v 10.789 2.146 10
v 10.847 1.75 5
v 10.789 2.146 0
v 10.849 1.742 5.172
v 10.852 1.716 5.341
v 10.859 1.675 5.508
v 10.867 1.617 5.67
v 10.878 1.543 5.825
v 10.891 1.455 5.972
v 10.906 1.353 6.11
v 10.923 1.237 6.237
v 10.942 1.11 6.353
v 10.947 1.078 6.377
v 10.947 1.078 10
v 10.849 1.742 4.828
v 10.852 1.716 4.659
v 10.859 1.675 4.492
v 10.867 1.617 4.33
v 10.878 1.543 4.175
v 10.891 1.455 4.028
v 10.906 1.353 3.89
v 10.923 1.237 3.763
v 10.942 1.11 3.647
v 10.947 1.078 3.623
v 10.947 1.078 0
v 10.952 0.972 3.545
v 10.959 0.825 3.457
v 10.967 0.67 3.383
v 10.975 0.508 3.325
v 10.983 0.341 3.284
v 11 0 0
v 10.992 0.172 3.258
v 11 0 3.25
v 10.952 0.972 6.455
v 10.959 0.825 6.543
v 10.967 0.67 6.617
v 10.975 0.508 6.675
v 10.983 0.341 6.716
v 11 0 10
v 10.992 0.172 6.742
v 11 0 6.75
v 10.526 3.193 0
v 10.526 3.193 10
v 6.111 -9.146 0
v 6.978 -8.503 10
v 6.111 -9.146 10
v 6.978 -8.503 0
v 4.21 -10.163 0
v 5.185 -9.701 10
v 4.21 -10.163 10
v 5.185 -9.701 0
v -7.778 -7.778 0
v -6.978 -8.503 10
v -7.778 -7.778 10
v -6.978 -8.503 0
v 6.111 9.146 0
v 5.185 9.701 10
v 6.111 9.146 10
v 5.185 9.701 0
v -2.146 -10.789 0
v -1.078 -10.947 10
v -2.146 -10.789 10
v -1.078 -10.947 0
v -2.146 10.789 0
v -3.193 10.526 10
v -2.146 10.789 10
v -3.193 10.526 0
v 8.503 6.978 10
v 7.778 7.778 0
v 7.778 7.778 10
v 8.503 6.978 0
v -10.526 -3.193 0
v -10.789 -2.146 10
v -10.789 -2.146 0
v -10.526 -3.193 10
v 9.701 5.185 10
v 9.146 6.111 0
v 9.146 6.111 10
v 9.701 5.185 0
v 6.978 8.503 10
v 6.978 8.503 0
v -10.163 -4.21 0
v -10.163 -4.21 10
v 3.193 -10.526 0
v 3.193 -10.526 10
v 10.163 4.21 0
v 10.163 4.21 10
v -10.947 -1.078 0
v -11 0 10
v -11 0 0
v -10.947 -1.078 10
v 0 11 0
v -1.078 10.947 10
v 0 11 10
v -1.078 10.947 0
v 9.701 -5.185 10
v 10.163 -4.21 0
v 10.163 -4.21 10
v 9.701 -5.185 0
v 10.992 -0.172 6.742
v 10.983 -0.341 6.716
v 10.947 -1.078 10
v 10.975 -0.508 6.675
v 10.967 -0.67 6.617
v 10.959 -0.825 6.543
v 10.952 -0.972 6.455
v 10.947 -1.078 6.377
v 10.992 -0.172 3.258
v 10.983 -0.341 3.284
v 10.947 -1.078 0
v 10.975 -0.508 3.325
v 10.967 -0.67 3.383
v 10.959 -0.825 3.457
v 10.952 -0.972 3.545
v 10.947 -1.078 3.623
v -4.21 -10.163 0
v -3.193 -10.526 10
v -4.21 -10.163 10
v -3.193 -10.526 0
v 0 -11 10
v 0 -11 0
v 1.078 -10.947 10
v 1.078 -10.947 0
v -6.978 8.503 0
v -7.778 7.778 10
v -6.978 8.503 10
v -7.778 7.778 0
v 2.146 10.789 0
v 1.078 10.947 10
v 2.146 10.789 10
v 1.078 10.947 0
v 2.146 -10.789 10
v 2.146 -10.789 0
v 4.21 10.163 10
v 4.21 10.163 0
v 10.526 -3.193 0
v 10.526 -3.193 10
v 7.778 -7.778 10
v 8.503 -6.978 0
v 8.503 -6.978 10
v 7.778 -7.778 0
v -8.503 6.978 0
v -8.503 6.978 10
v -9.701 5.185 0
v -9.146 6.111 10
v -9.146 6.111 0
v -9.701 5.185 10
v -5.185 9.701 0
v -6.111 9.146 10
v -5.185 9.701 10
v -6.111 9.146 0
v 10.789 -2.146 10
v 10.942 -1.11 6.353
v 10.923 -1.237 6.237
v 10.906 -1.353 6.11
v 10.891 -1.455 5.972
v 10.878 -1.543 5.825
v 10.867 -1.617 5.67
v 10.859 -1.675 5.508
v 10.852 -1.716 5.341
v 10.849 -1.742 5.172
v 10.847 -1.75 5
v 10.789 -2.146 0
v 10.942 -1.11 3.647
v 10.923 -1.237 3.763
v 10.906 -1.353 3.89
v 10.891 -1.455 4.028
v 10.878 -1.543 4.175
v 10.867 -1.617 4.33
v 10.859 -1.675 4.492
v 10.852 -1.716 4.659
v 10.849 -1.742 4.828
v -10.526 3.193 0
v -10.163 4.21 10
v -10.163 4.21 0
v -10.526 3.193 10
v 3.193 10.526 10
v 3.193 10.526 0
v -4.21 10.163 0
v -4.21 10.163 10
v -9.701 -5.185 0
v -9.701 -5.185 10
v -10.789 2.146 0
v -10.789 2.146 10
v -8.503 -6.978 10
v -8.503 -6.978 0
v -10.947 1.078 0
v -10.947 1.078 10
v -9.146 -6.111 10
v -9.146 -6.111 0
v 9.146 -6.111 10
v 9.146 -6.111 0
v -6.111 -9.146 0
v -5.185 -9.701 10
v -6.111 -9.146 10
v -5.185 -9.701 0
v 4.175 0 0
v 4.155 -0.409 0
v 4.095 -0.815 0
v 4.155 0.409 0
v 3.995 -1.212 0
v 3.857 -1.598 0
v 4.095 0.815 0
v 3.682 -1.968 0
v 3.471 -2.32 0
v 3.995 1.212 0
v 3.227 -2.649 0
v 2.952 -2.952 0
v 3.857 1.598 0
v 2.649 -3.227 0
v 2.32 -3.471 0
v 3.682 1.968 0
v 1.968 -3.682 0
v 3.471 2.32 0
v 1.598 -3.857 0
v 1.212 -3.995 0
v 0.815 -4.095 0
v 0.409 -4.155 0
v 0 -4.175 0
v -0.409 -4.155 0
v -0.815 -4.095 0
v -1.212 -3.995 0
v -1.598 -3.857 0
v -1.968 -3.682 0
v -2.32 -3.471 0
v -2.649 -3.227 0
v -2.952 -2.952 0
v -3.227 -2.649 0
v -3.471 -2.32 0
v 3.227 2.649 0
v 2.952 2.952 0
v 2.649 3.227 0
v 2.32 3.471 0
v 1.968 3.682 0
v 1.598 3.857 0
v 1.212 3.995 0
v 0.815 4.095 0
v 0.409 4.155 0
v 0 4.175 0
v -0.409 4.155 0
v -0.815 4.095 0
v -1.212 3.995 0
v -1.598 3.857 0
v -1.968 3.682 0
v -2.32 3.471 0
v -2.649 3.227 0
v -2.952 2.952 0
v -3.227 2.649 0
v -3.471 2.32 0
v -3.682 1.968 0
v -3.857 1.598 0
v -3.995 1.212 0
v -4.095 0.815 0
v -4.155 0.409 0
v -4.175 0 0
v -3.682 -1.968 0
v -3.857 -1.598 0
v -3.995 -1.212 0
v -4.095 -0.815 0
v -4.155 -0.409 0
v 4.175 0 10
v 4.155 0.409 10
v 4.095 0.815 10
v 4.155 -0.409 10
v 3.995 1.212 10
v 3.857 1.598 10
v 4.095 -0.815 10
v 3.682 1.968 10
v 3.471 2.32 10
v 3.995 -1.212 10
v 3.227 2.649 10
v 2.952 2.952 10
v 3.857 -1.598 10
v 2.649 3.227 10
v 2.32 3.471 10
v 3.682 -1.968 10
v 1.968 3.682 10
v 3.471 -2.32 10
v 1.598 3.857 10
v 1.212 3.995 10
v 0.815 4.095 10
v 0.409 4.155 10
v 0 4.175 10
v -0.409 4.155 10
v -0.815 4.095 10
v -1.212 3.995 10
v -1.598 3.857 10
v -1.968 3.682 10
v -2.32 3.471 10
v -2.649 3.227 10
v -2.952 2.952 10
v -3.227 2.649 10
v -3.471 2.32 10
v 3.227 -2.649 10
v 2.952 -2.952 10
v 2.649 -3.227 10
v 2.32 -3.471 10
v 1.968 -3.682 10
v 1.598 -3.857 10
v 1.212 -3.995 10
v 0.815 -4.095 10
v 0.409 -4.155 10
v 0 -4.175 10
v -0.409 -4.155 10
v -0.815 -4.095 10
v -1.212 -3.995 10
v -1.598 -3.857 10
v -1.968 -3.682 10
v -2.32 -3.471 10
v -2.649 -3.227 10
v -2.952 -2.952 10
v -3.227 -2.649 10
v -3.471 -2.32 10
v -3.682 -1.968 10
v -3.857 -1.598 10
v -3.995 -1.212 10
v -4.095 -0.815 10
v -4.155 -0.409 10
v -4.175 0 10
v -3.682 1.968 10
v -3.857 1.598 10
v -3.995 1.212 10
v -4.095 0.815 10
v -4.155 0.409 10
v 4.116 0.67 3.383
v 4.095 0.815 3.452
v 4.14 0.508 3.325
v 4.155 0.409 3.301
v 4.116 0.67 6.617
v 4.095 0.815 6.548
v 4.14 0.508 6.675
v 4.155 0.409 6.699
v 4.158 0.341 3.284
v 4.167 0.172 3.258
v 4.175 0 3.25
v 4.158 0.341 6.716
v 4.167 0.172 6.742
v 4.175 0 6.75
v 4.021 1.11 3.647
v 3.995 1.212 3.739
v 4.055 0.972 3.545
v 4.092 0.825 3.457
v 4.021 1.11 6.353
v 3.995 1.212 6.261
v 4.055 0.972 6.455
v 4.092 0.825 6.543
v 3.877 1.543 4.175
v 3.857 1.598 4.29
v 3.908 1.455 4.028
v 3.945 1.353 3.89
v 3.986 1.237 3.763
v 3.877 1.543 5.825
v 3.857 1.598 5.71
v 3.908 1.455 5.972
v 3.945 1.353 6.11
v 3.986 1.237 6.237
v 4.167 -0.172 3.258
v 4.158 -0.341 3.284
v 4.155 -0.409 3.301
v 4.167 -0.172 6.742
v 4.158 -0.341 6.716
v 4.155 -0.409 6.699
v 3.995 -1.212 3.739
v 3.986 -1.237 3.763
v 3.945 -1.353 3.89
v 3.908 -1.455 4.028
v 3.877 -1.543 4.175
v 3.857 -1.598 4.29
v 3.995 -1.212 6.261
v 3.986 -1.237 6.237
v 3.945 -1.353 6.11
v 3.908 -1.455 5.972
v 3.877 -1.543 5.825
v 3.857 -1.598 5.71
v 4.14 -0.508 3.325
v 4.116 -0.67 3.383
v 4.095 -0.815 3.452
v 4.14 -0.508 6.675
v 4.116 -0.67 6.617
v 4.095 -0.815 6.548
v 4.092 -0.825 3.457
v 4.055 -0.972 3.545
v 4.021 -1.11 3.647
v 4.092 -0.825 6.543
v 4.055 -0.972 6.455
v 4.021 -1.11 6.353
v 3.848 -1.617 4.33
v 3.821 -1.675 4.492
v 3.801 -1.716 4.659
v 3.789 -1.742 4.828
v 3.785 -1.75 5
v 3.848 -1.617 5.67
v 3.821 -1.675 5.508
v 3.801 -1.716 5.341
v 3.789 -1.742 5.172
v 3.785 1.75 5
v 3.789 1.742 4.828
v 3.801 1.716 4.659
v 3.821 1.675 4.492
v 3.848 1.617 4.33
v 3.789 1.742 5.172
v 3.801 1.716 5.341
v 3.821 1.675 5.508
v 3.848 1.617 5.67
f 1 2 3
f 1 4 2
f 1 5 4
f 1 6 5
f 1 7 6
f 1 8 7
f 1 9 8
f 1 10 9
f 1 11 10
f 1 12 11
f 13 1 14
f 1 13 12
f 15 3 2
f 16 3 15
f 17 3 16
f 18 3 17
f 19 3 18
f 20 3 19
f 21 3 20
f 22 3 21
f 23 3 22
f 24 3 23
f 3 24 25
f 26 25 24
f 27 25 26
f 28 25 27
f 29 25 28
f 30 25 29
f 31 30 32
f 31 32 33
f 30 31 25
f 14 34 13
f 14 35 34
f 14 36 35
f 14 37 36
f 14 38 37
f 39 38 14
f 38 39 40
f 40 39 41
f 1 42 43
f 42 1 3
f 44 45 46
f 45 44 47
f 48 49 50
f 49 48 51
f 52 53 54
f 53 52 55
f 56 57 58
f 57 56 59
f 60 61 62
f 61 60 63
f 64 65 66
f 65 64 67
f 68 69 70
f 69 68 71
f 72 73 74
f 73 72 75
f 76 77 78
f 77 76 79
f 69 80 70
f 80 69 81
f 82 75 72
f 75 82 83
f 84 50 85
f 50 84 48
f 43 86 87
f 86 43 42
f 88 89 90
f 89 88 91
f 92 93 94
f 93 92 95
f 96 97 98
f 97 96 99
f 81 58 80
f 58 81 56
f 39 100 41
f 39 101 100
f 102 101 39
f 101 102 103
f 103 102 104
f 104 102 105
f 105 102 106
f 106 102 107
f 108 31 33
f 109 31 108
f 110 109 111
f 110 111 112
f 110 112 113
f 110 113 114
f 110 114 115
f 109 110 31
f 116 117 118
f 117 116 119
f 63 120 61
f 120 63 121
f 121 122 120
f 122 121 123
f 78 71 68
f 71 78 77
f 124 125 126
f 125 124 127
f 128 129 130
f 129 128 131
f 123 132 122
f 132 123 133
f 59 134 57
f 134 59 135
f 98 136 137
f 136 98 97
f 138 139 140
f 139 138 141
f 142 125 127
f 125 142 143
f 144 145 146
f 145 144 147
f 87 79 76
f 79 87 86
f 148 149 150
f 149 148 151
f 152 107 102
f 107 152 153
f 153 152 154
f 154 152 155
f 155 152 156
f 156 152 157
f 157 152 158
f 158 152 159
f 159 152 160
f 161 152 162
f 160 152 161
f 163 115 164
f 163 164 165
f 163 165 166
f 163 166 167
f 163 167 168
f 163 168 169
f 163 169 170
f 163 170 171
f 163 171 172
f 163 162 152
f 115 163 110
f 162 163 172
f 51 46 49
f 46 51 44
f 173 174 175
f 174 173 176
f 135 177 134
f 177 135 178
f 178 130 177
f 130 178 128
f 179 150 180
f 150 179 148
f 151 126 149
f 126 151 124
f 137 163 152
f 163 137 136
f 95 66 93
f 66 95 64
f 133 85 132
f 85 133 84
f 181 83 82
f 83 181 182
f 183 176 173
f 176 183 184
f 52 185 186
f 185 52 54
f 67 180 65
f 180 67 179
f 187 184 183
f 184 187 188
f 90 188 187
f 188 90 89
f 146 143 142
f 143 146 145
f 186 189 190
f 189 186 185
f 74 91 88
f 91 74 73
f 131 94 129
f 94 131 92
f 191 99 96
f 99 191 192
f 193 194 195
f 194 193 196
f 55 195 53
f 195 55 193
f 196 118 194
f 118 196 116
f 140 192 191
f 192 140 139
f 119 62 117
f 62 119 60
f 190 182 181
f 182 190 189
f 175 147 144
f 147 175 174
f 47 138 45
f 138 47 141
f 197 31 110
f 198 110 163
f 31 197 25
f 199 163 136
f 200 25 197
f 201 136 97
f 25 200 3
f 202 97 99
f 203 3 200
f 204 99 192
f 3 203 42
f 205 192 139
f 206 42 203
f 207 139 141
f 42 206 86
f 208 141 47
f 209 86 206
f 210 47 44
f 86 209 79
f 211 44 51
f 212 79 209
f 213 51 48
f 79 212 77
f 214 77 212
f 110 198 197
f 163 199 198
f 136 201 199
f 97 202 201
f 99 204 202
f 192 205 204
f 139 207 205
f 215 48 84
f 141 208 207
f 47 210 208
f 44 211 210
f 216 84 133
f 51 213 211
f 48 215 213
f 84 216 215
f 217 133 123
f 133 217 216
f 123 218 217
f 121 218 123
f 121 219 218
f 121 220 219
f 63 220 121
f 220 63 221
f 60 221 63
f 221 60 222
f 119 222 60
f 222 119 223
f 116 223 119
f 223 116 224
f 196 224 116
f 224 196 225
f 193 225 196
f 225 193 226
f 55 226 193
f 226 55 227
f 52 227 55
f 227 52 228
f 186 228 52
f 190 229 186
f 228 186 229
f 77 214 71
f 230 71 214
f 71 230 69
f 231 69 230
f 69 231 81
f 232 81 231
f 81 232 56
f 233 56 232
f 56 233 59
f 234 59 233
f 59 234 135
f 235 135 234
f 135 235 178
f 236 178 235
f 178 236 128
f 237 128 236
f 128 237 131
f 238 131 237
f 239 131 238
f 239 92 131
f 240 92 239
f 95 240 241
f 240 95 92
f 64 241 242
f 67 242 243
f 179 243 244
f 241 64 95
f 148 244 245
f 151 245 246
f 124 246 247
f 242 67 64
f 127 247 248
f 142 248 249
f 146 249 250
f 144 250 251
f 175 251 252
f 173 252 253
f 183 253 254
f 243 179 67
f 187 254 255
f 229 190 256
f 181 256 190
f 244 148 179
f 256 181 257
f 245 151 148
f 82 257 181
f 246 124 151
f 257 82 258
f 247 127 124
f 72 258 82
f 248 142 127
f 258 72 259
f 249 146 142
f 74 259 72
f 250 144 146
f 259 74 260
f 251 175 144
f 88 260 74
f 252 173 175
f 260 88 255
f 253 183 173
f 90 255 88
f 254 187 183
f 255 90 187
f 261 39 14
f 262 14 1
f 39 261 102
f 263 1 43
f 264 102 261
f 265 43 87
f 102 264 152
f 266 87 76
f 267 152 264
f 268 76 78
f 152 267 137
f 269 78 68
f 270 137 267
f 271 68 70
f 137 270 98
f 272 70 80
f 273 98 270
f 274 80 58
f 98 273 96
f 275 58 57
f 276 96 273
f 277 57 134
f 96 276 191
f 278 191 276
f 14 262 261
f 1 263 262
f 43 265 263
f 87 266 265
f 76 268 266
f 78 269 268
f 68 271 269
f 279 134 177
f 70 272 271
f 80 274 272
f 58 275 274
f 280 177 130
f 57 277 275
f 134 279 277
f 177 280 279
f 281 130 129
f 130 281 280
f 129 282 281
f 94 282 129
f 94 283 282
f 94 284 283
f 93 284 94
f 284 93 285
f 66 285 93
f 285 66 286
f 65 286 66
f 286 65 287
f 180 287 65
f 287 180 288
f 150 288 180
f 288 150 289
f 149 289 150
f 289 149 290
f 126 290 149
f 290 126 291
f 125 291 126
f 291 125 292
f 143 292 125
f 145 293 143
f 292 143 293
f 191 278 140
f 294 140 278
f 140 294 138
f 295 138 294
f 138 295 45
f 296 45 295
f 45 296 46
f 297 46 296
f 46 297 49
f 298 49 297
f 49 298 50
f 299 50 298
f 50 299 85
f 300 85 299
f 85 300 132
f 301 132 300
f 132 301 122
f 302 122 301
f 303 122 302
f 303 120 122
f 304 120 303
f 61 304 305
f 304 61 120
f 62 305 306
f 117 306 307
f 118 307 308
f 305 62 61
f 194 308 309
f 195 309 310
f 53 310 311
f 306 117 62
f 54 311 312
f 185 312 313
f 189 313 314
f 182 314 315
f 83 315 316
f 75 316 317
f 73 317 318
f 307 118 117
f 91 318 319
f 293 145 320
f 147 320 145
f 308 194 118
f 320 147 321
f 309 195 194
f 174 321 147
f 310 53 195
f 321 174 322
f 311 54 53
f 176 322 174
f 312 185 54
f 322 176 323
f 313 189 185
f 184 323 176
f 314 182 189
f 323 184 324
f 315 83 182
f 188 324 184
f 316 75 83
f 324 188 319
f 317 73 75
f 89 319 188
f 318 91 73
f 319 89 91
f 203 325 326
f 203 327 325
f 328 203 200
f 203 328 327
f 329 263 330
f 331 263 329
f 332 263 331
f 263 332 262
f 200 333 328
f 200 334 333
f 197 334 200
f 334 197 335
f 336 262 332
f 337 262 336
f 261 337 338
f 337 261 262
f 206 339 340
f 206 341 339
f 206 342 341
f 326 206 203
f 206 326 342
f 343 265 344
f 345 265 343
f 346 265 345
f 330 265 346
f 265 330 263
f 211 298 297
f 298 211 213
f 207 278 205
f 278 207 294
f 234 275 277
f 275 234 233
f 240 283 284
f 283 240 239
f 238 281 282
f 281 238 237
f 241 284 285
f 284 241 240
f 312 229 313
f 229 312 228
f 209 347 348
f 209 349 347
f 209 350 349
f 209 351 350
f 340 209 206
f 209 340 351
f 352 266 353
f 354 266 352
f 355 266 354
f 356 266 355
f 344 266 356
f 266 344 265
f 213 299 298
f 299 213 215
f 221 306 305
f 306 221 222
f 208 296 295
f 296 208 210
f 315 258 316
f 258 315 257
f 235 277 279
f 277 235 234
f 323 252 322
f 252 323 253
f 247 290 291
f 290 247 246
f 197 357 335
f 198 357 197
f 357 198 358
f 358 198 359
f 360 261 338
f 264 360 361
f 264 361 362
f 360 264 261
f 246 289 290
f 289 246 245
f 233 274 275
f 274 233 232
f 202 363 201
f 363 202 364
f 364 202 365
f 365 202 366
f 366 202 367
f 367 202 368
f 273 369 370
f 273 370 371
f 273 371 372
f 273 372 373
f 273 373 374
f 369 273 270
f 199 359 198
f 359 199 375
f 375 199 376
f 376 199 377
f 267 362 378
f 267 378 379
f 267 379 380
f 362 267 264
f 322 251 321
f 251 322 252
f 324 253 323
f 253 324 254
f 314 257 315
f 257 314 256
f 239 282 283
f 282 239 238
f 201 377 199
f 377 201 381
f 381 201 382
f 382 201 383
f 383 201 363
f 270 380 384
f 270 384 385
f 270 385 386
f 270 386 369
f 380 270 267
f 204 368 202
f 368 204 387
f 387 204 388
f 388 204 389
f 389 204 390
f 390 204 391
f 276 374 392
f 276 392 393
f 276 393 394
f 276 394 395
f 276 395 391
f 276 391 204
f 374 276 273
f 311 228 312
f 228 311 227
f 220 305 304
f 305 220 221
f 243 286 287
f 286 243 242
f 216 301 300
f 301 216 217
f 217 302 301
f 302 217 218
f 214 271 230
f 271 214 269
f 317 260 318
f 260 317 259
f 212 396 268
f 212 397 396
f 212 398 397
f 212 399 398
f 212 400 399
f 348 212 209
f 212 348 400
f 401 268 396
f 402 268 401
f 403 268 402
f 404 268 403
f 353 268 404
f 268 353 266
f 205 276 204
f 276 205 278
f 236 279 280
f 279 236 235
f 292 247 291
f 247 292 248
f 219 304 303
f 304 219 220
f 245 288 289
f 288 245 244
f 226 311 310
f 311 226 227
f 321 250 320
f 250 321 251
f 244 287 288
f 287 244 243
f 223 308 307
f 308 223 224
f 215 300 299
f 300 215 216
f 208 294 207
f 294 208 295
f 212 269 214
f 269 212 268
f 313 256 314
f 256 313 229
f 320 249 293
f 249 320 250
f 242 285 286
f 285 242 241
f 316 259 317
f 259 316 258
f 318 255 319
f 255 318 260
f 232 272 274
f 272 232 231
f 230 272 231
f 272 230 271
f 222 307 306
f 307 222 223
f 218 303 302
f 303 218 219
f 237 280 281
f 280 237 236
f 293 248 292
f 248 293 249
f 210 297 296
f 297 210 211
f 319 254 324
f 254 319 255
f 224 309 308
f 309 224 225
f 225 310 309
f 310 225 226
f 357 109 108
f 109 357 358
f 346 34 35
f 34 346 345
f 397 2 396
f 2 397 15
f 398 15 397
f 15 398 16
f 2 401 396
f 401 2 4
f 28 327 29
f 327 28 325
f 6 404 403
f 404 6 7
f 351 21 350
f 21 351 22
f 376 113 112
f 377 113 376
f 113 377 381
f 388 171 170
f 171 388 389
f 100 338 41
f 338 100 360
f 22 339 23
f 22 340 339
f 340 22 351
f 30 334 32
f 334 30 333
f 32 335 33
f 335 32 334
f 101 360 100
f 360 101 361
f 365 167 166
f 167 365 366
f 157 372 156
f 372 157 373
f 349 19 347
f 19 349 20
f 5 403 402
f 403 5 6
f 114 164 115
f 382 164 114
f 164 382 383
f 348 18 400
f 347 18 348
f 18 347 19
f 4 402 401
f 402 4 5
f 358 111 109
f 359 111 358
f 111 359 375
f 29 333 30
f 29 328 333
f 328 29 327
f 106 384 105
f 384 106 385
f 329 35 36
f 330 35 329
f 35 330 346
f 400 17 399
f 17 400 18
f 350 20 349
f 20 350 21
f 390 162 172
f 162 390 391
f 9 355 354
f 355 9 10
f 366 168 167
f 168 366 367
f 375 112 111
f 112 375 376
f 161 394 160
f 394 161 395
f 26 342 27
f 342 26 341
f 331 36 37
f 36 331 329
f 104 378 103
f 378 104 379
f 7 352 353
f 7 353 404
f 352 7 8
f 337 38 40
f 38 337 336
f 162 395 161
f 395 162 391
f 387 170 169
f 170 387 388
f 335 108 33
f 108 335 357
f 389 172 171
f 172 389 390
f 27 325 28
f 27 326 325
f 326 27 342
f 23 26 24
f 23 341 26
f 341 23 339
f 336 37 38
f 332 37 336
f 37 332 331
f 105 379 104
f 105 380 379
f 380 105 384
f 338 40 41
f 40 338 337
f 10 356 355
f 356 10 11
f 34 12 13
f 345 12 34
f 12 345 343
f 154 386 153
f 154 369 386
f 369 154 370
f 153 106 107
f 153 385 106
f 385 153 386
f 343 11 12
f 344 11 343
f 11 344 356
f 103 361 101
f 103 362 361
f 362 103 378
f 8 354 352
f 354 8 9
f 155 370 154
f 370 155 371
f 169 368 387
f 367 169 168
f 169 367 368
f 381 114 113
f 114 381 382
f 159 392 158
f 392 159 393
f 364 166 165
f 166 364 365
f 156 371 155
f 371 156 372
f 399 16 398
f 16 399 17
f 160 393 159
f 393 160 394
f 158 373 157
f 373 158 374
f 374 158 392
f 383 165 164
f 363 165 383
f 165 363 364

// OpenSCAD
// file: parameters.scad
// =============================================================================
// Gen-AS Vernier flux-claw ultra - WOUND-AWARE (HARD GATE)
// Dual-rotor vernier: Rotor B +22.5 deg vs 12-slot stator; O5 flux claws
// =============================================================================

wire_awg            = 26;
wire_od             = 0.45;
turns               = 200;      // +5 vs Gen-AP 195
fill                = 0.70;
layers_per_face     = 2;
wind_build_axial    = layers_per_face * wire_od * fill;   // 0.63 mm
wind_build_radial   = 3 * wire_od * fill;                 // 0.945 mm

coil_id_r           = 15.5;
coil_od_r           = 62.5;
span_deg            = 25.0;
former_web          = 1.25;     // thinner vs AP 1.30
flange_t            = 0.60;
wall                = 1.2;
slot_w              = 2.4;
mount_hole          = 3.5;
tab_len             = 7.0;

former_bare_h       = former_web + 2 * flange_t;            // 2.45 mm
coil_envelope_h     = former_bare_h + 2 * wind_build_axial; // 3.71 mm

run_clear           = 0.50;
gap_spacer_h        = run_clear + wind_build_axial;         // 1.13 mm
m2m                 = coil_envelope_h + 2 * run_clear;      // 4.71 mm

coil_stations       = 12;
bay_r_in            = coil_id_r - 2.0 - wind_build_radial;
bay_r_out           = coil_od_r + 2.0 + wind_build_radial;
bay_span            = span_deg + 4.0;
bay_offset          = 2.0;
stator_thick        = former_bare_h;
stator_od           = 160.0;
shaft_clear_stator  = 34.0;
coil_mount_r        = 25.5;

large_pocket_d      = 20.3;
small_pocket_d      = 5.3;
pocket_h            = 5.2;
large_n             = 8;
R_large             = 39.0;     // closer to copper centroid vs AP R=39.5
R_small_inner       = 25.0;
R_small_mid         = 39.0;
R_small_outer       = 55.0;
carrier_od          = 156.0;
carrier_thick       = 7.5;
hub_h               = 10.0;
hub_od              = 30.0;
rotor_b_offset_deg  = 22.5;     // vernier offset vs 12-slot stator

shaft_bore          = 8.35;
bearing_d           = 21.85;
bearing_h           = 7.2;
m3_clear            = 3.5;
bolt_r_inner        = 36.0;
bolt_n_inner        = 6;
flange_bolt_r       = 72.0;
flange_bolt_n       = 6;
brace_r             = 68.0;
brace_d             = 4.3;
brace_n             = 4;

spacer_pad_od       = 14.0;
spacer_pad_id       = m3_clear;
endbell_od          = 160.0;
endbell_thick       = 8.0;
endbell_shaft_clear = 10.0;

$fn = 64;
// main file
// Gen-AS shaft collar — print ×2–4
include <parameters.scad>;
$fn = 64;
od = 22; id = shaft_bore; h = 10; set_d = 3.5;
difference() {
    cylinder(d=od, h=h);
    translate([0, 0, -0.1]) cylinder(d=id, h=h + 0.2);
    translate([0, 0, h/2]) rotate([0, 90, 0]) cylinder(d=set_d, h=od);
}
